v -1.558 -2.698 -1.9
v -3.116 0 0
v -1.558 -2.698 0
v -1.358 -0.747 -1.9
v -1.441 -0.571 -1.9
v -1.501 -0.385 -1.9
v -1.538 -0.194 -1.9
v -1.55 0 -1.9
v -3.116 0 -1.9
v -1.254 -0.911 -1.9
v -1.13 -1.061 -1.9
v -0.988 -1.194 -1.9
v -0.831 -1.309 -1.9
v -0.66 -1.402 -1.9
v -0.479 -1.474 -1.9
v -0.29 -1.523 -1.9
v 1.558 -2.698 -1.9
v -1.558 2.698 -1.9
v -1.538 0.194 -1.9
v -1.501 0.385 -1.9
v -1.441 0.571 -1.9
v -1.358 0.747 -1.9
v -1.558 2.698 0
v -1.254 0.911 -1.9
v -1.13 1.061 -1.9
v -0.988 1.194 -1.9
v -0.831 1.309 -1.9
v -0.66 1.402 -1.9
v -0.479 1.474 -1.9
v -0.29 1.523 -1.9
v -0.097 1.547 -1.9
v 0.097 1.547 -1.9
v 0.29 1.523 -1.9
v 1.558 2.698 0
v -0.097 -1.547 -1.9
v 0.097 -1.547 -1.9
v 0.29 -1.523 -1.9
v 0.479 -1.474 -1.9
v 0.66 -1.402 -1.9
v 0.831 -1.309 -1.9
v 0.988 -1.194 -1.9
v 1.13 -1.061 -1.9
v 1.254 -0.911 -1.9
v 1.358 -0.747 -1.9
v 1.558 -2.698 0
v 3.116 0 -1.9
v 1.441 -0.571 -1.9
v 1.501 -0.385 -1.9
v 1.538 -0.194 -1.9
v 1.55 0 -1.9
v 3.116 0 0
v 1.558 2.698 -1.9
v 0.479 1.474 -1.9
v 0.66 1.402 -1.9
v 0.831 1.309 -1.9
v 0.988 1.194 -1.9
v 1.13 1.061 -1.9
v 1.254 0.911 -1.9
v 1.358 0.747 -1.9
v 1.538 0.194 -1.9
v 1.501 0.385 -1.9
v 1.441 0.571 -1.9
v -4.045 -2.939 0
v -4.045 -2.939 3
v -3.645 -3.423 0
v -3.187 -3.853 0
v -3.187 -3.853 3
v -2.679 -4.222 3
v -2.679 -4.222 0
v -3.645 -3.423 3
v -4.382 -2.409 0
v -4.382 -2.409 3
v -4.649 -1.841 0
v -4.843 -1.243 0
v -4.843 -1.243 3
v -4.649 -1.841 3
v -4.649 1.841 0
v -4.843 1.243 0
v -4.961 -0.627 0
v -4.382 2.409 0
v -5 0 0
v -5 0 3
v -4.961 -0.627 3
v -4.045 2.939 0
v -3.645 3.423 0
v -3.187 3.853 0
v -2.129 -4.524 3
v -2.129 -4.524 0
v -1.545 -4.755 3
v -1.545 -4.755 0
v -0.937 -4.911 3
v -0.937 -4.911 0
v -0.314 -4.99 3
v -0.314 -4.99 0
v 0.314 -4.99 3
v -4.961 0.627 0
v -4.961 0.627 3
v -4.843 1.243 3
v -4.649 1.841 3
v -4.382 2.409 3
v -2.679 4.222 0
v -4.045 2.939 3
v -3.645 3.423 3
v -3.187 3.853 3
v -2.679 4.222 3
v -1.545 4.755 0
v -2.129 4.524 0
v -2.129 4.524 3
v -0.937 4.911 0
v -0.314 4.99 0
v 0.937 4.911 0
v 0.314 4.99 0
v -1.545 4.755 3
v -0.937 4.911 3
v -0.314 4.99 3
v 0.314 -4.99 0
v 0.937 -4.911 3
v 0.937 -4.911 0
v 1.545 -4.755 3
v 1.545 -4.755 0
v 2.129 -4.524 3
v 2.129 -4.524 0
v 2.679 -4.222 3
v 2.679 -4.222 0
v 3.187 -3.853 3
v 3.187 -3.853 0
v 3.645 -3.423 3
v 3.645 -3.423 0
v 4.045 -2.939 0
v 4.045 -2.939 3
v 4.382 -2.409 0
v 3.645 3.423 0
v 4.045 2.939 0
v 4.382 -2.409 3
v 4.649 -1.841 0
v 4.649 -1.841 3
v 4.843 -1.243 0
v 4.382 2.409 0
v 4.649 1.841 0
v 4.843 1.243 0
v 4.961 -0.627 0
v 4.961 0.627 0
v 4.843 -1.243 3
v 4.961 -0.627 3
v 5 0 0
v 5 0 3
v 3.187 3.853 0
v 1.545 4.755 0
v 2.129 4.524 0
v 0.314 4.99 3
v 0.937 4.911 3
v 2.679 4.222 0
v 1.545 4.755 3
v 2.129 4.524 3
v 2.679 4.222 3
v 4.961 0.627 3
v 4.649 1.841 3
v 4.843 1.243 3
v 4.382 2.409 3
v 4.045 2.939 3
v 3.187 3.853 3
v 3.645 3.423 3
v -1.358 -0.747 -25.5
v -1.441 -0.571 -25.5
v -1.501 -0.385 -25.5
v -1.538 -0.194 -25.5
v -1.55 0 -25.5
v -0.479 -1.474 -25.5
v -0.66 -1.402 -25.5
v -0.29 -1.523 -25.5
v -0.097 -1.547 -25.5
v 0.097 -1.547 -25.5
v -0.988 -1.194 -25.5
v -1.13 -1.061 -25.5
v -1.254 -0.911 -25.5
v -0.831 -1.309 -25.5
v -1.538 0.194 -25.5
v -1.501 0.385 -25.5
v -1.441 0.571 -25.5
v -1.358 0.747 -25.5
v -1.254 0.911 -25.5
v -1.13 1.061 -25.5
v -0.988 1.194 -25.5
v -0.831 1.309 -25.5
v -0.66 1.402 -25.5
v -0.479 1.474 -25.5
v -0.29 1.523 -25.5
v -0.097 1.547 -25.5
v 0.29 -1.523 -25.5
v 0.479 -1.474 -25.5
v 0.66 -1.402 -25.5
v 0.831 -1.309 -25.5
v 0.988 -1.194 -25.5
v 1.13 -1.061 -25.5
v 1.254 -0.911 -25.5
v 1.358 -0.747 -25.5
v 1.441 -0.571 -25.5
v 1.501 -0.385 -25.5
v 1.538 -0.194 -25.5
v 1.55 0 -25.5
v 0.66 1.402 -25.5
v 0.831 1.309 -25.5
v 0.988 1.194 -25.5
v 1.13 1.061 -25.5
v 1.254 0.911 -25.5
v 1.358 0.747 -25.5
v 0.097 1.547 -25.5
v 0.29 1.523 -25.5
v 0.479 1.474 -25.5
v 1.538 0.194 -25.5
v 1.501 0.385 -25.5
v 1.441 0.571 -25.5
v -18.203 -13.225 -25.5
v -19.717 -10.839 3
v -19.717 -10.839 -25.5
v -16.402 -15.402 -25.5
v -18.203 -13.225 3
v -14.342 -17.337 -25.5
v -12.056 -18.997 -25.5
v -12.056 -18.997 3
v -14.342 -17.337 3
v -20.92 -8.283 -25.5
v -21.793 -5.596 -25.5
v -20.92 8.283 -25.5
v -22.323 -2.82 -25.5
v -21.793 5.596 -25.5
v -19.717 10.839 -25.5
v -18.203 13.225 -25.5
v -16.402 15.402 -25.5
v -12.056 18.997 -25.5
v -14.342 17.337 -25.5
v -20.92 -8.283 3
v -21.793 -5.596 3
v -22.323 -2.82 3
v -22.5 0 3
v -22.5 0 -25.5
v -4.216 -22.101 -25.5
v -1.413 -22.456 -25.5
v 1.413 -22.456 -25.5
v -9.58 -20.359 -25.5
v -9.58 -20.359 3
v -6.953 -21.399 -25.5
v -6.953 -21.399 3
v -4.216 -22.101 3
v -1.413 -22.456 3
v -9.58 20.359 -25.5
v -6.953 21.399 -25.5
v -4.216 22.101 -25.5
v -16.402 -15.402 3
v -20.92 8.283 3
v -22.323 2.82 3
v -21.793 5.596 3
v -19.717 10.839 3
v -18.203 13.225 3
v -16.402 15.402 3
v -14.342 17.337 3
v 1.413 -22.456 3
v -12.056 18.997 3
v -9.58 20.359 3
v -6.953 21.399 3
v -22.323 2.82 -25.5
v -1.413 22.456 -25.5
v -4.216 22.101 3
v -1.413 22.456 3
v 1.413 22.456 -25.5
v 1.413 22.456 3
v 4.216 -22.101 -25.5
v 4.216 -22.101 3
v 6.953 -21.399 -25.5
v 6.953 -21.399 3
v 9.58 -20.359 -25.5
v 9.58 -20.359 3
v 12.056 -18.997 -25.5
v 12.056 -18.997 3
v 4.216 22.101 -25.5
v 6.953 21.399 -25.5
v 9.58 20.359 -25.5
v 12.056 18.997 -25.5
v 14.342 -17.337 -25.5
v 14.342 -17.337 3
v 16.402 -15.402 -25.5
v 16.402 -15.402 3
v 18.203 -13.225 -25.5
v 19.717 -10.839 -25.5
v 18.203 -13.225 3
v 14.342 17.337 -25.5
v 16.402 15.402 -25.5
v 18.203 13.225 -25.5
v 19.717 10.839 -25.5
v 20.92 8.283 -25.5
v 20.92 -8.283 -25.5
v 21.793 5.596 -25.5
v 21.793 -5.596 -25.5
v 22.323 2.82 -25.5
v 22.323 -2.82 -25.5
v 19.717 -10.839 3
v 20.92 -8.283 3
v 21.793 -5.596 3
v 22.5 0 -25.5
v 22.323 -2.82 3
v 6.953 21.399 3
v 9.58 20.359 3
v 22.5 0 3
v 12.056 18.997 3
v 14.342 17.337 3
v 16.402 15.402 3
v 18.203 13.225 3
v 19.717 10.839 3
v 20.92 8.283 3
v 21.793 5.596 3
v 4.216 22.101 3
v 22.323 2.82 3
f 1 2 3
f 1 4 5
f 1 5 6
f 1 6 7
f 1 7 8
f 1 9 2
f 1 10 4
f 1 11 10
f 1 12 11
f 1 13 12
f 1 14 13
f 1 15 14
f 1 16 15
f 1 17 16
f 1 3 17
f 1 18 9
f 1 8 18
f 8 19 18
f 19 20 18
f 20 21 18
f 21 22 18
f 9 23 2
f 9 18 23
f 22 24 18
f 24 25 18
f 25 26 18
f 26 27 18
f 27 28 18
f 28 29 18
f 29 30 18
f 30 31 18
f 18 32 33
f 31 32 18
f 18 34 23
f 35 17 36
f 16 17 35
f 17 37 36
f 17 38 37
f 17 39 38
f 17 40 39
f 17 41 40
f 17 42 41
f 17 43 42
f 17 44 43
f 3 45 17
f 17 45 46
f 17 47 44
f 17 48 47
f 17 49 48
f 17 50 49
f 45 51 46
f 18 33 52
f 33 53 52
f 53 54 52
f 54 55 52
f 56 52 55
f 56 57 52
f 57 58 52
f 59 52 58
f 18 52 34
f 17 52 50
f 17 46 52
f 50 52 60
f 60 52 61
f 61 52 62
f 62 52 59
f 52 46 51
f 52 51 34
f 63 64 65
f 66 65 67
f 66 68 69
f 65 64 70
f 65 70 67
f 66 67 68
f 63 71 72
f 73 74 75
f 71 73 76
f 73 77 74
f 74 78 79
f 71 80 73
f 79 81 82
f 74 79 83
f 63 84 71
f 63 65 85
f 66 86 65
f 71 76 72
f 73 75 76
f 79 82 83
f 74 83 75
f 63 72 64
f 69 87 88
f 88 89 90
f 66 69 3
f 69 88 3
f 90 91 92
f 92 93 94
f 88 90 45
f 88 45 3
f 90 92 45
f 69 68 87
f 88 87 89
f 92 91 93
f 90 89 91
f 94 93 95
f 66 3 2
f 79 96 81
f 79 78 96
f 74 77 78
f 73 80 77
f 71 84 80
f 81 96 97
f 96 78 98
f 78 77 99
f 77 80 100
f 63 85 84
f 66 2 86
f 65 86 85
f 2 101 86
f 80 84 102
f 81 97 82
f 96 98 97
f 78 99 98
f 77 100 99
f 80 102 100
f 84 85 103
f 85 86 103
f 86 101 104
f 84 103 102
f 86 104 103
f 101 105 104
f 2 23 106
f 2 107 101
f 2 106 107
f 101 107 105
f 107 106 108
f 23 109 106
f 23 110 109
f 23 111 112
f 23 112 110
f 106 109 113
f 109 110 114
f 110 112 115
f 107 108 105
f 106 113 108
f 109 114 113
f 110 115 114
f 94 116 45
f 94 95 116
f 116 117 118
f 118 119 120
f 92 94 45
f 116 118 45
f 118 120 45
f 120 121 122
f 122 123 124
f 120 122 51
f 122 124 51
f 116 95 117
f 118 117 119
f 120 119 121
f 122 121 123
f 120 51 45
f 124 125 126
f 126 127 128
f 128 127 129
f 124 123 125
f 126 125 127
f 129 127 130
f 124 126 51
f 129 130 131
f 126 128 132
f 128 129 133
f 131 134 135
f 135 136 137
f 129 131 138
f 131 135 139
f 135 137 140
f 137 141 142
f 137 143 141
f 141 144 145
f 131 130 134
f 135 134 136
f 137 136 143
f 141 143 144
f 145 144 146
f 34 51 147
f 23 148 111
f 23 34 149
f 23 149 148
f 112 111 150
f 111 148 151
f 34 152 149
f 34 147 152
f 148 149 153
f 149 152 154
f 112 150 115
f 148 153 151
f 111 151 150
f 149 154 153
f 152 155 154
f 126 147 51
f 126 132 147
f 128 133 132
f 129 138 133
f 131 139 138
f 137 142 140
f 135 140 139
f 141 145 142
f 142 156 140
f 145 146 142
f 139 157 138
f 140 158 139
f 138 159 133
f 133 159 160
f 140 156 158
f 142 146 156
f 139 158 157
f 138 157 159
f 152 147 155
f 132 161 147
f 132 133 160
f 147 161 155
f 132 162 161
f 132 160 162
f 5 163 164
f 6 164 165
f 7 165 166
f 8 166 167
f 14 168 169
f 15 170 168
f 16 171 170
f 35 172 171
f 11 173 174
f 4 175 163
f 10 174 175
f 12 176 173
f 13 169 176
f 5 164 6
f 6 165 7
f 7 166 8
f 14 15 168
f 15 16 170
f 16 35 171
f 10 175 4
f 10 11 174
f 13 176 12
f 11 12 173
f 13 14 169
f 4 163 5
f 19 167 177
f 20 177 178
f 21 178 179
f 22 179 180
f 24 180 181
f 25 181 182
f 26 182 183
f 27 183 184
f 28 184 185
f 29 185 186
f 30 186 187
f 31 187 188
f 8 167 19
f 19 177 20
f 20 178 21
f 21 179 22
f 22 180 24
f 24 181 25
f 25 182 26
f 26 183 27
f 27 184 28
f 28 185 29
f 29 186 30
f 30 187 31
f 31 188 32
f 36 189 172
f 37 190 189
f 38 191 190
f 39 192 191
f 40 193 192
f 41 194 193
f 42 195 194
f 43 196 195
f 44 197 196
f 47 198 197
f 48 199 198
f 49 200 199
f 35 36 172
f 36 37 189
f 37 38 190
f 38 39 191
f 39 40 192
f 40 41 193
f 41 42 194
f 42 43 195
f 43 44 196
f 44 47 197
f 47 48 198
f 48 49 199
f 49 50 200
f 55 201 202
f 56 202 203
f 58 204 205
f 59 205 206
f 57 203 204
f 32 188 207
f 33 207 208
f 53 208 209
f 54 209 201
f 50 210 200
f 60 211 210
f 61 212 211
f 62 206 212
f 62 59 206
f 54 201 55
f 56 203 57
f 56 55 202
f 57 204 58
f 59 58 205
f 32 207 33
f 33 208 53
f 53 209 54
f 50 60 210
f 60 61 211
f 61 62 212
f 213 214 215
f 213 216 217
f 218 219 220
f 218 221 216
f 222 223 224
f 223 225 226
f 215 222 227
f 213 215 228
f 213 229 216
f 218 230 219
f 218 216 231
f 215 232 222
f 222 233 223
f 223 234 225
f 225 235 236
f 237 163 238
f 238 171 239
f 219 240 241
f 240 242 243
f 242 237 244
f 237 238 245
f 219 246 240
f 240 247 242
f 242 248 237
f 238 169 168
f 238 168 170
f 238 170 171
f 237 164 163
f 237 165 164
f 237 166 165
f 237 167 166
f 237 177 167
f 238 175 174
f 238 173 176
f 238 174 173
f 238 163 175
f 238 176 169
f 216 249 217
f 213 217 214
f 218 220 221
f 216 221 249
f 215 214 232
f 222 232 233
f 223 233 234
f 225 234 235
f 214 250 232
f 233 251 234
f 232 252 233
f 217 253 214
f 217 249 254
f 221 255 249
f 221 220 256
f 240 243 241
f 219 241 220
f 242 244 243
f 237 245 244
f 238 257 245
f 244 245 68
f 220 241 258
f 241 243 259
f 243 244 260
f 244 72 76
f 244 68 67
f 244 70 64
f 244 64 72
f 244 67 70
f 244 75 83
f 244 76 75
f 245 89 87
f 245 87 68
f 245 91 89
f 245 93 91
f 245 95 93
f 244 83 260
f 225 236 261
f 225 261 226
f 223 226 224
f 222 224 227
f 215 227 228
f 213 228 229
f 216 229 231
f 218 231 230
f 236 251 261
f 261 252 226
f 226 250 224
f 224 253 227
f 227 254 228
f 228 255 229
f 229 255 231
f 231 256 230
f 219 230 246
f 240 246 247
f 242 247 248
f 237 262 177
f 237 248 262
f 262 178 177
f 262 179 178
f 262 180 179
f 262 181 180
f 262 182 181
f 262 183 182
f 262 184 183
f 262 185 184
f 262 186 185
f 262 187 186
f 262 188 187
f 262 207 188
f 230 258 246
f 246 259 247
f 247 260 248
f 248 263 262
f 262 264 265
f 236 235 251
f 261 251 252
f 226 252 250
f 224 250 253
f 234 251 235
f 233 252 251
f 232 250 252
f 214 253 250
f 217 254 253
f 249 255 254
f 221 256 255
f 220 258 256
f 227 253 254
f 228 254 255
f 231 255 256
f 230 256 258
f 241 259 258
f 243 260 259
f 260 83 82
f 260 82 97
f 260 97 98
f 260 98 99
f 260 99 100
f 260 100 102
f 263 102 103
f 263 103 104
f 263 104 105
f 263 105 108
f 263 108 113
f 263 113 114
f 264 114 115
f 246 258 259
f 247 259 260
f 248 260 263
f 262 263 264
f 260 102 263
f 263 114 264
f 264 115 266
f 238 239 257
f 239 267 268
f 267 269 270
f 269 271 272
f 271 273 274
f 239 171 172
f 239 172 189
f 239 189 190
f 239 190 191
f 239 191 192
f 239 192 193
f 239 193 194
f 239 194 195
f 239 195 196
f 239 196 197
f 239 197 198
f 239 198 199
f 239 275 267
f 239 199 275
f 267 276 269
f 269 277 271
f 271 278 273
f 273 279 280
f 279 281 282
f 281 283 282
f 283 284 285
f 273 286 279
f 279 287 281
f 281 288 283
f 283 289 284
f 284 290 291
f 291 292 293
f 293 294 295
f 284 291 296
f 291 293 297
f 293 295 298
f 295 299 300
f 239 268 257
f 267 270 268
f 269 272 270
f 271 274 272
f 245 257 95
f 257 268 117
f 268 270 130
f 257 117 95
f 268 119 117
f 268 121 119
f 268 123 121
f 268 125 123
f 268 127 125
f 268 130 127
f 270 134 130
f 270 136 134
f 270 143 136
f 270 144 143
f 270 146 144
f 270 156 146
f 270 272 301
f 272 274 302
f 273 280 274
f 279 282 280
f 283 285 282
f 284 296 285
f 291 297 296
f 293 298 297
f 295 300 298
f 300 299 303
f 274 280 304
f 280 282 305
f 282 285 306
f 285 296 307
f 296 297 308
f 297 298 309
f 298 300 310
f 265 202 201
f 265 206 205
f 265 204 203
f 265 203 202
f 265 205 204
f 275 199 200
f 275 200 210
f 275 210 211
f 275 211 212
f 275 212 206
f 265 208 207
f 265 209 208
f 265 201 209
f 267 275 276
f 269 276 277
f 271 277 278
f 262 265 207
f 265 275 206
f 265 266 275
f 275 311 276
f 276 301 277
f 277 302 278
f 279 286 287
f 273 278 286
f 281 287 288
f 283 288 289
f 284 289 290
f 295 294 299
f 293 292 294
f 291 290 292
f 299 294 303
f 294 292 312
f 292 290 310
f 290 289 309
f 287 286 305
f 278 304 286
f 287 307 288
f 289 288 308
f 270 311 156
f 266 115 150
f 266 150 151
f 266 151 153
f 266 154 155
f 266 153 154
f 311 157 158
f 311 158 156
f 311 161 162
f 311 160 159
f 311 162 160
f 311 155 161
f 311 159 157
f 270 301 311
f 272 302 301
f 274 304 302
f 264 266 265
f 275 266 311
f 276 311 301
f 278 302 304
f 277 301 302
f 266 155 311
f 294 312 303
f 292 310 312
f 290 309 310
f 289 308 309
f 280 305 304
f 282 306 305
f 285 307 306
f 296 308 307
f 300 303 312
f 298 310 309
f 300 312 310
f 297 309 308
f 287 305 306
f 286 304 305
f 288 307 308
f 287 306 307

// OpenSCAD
$fn = 50;

difference() {
	union() {
		translate(v = [0, 0, -25.5]) {
			cylinder(h = 28.5, r = 22.5);
		}
	}
	union() {
		translate(v = [0, 0, 0]) {
			rotate(a = [0, 0, 0]) {
				difference() {
					union() {
						translate(v = [0, 0, -1.9]) {
							linear_extrude(height = 1.9) {
								polygon(points = [[3.1158, 0.0], [1.5579000000000005, 2.698361953111554], [-1.5578999999999994, 2.6983619531115544], [-3.1158, 3.815754496783323e-16], [-1.5579000000000014, -2.6983619531115535], [1.557899999999998, -2.6983619531115552]]);
							}
						}
					}
					union();
				}
			}
		}
		#cylinder(h = 3, r = 5.0);
		#translate(v = [0, 0, -100.0]) {
			cylinder(h = 200, r = 1.55);
		}
	}
}
